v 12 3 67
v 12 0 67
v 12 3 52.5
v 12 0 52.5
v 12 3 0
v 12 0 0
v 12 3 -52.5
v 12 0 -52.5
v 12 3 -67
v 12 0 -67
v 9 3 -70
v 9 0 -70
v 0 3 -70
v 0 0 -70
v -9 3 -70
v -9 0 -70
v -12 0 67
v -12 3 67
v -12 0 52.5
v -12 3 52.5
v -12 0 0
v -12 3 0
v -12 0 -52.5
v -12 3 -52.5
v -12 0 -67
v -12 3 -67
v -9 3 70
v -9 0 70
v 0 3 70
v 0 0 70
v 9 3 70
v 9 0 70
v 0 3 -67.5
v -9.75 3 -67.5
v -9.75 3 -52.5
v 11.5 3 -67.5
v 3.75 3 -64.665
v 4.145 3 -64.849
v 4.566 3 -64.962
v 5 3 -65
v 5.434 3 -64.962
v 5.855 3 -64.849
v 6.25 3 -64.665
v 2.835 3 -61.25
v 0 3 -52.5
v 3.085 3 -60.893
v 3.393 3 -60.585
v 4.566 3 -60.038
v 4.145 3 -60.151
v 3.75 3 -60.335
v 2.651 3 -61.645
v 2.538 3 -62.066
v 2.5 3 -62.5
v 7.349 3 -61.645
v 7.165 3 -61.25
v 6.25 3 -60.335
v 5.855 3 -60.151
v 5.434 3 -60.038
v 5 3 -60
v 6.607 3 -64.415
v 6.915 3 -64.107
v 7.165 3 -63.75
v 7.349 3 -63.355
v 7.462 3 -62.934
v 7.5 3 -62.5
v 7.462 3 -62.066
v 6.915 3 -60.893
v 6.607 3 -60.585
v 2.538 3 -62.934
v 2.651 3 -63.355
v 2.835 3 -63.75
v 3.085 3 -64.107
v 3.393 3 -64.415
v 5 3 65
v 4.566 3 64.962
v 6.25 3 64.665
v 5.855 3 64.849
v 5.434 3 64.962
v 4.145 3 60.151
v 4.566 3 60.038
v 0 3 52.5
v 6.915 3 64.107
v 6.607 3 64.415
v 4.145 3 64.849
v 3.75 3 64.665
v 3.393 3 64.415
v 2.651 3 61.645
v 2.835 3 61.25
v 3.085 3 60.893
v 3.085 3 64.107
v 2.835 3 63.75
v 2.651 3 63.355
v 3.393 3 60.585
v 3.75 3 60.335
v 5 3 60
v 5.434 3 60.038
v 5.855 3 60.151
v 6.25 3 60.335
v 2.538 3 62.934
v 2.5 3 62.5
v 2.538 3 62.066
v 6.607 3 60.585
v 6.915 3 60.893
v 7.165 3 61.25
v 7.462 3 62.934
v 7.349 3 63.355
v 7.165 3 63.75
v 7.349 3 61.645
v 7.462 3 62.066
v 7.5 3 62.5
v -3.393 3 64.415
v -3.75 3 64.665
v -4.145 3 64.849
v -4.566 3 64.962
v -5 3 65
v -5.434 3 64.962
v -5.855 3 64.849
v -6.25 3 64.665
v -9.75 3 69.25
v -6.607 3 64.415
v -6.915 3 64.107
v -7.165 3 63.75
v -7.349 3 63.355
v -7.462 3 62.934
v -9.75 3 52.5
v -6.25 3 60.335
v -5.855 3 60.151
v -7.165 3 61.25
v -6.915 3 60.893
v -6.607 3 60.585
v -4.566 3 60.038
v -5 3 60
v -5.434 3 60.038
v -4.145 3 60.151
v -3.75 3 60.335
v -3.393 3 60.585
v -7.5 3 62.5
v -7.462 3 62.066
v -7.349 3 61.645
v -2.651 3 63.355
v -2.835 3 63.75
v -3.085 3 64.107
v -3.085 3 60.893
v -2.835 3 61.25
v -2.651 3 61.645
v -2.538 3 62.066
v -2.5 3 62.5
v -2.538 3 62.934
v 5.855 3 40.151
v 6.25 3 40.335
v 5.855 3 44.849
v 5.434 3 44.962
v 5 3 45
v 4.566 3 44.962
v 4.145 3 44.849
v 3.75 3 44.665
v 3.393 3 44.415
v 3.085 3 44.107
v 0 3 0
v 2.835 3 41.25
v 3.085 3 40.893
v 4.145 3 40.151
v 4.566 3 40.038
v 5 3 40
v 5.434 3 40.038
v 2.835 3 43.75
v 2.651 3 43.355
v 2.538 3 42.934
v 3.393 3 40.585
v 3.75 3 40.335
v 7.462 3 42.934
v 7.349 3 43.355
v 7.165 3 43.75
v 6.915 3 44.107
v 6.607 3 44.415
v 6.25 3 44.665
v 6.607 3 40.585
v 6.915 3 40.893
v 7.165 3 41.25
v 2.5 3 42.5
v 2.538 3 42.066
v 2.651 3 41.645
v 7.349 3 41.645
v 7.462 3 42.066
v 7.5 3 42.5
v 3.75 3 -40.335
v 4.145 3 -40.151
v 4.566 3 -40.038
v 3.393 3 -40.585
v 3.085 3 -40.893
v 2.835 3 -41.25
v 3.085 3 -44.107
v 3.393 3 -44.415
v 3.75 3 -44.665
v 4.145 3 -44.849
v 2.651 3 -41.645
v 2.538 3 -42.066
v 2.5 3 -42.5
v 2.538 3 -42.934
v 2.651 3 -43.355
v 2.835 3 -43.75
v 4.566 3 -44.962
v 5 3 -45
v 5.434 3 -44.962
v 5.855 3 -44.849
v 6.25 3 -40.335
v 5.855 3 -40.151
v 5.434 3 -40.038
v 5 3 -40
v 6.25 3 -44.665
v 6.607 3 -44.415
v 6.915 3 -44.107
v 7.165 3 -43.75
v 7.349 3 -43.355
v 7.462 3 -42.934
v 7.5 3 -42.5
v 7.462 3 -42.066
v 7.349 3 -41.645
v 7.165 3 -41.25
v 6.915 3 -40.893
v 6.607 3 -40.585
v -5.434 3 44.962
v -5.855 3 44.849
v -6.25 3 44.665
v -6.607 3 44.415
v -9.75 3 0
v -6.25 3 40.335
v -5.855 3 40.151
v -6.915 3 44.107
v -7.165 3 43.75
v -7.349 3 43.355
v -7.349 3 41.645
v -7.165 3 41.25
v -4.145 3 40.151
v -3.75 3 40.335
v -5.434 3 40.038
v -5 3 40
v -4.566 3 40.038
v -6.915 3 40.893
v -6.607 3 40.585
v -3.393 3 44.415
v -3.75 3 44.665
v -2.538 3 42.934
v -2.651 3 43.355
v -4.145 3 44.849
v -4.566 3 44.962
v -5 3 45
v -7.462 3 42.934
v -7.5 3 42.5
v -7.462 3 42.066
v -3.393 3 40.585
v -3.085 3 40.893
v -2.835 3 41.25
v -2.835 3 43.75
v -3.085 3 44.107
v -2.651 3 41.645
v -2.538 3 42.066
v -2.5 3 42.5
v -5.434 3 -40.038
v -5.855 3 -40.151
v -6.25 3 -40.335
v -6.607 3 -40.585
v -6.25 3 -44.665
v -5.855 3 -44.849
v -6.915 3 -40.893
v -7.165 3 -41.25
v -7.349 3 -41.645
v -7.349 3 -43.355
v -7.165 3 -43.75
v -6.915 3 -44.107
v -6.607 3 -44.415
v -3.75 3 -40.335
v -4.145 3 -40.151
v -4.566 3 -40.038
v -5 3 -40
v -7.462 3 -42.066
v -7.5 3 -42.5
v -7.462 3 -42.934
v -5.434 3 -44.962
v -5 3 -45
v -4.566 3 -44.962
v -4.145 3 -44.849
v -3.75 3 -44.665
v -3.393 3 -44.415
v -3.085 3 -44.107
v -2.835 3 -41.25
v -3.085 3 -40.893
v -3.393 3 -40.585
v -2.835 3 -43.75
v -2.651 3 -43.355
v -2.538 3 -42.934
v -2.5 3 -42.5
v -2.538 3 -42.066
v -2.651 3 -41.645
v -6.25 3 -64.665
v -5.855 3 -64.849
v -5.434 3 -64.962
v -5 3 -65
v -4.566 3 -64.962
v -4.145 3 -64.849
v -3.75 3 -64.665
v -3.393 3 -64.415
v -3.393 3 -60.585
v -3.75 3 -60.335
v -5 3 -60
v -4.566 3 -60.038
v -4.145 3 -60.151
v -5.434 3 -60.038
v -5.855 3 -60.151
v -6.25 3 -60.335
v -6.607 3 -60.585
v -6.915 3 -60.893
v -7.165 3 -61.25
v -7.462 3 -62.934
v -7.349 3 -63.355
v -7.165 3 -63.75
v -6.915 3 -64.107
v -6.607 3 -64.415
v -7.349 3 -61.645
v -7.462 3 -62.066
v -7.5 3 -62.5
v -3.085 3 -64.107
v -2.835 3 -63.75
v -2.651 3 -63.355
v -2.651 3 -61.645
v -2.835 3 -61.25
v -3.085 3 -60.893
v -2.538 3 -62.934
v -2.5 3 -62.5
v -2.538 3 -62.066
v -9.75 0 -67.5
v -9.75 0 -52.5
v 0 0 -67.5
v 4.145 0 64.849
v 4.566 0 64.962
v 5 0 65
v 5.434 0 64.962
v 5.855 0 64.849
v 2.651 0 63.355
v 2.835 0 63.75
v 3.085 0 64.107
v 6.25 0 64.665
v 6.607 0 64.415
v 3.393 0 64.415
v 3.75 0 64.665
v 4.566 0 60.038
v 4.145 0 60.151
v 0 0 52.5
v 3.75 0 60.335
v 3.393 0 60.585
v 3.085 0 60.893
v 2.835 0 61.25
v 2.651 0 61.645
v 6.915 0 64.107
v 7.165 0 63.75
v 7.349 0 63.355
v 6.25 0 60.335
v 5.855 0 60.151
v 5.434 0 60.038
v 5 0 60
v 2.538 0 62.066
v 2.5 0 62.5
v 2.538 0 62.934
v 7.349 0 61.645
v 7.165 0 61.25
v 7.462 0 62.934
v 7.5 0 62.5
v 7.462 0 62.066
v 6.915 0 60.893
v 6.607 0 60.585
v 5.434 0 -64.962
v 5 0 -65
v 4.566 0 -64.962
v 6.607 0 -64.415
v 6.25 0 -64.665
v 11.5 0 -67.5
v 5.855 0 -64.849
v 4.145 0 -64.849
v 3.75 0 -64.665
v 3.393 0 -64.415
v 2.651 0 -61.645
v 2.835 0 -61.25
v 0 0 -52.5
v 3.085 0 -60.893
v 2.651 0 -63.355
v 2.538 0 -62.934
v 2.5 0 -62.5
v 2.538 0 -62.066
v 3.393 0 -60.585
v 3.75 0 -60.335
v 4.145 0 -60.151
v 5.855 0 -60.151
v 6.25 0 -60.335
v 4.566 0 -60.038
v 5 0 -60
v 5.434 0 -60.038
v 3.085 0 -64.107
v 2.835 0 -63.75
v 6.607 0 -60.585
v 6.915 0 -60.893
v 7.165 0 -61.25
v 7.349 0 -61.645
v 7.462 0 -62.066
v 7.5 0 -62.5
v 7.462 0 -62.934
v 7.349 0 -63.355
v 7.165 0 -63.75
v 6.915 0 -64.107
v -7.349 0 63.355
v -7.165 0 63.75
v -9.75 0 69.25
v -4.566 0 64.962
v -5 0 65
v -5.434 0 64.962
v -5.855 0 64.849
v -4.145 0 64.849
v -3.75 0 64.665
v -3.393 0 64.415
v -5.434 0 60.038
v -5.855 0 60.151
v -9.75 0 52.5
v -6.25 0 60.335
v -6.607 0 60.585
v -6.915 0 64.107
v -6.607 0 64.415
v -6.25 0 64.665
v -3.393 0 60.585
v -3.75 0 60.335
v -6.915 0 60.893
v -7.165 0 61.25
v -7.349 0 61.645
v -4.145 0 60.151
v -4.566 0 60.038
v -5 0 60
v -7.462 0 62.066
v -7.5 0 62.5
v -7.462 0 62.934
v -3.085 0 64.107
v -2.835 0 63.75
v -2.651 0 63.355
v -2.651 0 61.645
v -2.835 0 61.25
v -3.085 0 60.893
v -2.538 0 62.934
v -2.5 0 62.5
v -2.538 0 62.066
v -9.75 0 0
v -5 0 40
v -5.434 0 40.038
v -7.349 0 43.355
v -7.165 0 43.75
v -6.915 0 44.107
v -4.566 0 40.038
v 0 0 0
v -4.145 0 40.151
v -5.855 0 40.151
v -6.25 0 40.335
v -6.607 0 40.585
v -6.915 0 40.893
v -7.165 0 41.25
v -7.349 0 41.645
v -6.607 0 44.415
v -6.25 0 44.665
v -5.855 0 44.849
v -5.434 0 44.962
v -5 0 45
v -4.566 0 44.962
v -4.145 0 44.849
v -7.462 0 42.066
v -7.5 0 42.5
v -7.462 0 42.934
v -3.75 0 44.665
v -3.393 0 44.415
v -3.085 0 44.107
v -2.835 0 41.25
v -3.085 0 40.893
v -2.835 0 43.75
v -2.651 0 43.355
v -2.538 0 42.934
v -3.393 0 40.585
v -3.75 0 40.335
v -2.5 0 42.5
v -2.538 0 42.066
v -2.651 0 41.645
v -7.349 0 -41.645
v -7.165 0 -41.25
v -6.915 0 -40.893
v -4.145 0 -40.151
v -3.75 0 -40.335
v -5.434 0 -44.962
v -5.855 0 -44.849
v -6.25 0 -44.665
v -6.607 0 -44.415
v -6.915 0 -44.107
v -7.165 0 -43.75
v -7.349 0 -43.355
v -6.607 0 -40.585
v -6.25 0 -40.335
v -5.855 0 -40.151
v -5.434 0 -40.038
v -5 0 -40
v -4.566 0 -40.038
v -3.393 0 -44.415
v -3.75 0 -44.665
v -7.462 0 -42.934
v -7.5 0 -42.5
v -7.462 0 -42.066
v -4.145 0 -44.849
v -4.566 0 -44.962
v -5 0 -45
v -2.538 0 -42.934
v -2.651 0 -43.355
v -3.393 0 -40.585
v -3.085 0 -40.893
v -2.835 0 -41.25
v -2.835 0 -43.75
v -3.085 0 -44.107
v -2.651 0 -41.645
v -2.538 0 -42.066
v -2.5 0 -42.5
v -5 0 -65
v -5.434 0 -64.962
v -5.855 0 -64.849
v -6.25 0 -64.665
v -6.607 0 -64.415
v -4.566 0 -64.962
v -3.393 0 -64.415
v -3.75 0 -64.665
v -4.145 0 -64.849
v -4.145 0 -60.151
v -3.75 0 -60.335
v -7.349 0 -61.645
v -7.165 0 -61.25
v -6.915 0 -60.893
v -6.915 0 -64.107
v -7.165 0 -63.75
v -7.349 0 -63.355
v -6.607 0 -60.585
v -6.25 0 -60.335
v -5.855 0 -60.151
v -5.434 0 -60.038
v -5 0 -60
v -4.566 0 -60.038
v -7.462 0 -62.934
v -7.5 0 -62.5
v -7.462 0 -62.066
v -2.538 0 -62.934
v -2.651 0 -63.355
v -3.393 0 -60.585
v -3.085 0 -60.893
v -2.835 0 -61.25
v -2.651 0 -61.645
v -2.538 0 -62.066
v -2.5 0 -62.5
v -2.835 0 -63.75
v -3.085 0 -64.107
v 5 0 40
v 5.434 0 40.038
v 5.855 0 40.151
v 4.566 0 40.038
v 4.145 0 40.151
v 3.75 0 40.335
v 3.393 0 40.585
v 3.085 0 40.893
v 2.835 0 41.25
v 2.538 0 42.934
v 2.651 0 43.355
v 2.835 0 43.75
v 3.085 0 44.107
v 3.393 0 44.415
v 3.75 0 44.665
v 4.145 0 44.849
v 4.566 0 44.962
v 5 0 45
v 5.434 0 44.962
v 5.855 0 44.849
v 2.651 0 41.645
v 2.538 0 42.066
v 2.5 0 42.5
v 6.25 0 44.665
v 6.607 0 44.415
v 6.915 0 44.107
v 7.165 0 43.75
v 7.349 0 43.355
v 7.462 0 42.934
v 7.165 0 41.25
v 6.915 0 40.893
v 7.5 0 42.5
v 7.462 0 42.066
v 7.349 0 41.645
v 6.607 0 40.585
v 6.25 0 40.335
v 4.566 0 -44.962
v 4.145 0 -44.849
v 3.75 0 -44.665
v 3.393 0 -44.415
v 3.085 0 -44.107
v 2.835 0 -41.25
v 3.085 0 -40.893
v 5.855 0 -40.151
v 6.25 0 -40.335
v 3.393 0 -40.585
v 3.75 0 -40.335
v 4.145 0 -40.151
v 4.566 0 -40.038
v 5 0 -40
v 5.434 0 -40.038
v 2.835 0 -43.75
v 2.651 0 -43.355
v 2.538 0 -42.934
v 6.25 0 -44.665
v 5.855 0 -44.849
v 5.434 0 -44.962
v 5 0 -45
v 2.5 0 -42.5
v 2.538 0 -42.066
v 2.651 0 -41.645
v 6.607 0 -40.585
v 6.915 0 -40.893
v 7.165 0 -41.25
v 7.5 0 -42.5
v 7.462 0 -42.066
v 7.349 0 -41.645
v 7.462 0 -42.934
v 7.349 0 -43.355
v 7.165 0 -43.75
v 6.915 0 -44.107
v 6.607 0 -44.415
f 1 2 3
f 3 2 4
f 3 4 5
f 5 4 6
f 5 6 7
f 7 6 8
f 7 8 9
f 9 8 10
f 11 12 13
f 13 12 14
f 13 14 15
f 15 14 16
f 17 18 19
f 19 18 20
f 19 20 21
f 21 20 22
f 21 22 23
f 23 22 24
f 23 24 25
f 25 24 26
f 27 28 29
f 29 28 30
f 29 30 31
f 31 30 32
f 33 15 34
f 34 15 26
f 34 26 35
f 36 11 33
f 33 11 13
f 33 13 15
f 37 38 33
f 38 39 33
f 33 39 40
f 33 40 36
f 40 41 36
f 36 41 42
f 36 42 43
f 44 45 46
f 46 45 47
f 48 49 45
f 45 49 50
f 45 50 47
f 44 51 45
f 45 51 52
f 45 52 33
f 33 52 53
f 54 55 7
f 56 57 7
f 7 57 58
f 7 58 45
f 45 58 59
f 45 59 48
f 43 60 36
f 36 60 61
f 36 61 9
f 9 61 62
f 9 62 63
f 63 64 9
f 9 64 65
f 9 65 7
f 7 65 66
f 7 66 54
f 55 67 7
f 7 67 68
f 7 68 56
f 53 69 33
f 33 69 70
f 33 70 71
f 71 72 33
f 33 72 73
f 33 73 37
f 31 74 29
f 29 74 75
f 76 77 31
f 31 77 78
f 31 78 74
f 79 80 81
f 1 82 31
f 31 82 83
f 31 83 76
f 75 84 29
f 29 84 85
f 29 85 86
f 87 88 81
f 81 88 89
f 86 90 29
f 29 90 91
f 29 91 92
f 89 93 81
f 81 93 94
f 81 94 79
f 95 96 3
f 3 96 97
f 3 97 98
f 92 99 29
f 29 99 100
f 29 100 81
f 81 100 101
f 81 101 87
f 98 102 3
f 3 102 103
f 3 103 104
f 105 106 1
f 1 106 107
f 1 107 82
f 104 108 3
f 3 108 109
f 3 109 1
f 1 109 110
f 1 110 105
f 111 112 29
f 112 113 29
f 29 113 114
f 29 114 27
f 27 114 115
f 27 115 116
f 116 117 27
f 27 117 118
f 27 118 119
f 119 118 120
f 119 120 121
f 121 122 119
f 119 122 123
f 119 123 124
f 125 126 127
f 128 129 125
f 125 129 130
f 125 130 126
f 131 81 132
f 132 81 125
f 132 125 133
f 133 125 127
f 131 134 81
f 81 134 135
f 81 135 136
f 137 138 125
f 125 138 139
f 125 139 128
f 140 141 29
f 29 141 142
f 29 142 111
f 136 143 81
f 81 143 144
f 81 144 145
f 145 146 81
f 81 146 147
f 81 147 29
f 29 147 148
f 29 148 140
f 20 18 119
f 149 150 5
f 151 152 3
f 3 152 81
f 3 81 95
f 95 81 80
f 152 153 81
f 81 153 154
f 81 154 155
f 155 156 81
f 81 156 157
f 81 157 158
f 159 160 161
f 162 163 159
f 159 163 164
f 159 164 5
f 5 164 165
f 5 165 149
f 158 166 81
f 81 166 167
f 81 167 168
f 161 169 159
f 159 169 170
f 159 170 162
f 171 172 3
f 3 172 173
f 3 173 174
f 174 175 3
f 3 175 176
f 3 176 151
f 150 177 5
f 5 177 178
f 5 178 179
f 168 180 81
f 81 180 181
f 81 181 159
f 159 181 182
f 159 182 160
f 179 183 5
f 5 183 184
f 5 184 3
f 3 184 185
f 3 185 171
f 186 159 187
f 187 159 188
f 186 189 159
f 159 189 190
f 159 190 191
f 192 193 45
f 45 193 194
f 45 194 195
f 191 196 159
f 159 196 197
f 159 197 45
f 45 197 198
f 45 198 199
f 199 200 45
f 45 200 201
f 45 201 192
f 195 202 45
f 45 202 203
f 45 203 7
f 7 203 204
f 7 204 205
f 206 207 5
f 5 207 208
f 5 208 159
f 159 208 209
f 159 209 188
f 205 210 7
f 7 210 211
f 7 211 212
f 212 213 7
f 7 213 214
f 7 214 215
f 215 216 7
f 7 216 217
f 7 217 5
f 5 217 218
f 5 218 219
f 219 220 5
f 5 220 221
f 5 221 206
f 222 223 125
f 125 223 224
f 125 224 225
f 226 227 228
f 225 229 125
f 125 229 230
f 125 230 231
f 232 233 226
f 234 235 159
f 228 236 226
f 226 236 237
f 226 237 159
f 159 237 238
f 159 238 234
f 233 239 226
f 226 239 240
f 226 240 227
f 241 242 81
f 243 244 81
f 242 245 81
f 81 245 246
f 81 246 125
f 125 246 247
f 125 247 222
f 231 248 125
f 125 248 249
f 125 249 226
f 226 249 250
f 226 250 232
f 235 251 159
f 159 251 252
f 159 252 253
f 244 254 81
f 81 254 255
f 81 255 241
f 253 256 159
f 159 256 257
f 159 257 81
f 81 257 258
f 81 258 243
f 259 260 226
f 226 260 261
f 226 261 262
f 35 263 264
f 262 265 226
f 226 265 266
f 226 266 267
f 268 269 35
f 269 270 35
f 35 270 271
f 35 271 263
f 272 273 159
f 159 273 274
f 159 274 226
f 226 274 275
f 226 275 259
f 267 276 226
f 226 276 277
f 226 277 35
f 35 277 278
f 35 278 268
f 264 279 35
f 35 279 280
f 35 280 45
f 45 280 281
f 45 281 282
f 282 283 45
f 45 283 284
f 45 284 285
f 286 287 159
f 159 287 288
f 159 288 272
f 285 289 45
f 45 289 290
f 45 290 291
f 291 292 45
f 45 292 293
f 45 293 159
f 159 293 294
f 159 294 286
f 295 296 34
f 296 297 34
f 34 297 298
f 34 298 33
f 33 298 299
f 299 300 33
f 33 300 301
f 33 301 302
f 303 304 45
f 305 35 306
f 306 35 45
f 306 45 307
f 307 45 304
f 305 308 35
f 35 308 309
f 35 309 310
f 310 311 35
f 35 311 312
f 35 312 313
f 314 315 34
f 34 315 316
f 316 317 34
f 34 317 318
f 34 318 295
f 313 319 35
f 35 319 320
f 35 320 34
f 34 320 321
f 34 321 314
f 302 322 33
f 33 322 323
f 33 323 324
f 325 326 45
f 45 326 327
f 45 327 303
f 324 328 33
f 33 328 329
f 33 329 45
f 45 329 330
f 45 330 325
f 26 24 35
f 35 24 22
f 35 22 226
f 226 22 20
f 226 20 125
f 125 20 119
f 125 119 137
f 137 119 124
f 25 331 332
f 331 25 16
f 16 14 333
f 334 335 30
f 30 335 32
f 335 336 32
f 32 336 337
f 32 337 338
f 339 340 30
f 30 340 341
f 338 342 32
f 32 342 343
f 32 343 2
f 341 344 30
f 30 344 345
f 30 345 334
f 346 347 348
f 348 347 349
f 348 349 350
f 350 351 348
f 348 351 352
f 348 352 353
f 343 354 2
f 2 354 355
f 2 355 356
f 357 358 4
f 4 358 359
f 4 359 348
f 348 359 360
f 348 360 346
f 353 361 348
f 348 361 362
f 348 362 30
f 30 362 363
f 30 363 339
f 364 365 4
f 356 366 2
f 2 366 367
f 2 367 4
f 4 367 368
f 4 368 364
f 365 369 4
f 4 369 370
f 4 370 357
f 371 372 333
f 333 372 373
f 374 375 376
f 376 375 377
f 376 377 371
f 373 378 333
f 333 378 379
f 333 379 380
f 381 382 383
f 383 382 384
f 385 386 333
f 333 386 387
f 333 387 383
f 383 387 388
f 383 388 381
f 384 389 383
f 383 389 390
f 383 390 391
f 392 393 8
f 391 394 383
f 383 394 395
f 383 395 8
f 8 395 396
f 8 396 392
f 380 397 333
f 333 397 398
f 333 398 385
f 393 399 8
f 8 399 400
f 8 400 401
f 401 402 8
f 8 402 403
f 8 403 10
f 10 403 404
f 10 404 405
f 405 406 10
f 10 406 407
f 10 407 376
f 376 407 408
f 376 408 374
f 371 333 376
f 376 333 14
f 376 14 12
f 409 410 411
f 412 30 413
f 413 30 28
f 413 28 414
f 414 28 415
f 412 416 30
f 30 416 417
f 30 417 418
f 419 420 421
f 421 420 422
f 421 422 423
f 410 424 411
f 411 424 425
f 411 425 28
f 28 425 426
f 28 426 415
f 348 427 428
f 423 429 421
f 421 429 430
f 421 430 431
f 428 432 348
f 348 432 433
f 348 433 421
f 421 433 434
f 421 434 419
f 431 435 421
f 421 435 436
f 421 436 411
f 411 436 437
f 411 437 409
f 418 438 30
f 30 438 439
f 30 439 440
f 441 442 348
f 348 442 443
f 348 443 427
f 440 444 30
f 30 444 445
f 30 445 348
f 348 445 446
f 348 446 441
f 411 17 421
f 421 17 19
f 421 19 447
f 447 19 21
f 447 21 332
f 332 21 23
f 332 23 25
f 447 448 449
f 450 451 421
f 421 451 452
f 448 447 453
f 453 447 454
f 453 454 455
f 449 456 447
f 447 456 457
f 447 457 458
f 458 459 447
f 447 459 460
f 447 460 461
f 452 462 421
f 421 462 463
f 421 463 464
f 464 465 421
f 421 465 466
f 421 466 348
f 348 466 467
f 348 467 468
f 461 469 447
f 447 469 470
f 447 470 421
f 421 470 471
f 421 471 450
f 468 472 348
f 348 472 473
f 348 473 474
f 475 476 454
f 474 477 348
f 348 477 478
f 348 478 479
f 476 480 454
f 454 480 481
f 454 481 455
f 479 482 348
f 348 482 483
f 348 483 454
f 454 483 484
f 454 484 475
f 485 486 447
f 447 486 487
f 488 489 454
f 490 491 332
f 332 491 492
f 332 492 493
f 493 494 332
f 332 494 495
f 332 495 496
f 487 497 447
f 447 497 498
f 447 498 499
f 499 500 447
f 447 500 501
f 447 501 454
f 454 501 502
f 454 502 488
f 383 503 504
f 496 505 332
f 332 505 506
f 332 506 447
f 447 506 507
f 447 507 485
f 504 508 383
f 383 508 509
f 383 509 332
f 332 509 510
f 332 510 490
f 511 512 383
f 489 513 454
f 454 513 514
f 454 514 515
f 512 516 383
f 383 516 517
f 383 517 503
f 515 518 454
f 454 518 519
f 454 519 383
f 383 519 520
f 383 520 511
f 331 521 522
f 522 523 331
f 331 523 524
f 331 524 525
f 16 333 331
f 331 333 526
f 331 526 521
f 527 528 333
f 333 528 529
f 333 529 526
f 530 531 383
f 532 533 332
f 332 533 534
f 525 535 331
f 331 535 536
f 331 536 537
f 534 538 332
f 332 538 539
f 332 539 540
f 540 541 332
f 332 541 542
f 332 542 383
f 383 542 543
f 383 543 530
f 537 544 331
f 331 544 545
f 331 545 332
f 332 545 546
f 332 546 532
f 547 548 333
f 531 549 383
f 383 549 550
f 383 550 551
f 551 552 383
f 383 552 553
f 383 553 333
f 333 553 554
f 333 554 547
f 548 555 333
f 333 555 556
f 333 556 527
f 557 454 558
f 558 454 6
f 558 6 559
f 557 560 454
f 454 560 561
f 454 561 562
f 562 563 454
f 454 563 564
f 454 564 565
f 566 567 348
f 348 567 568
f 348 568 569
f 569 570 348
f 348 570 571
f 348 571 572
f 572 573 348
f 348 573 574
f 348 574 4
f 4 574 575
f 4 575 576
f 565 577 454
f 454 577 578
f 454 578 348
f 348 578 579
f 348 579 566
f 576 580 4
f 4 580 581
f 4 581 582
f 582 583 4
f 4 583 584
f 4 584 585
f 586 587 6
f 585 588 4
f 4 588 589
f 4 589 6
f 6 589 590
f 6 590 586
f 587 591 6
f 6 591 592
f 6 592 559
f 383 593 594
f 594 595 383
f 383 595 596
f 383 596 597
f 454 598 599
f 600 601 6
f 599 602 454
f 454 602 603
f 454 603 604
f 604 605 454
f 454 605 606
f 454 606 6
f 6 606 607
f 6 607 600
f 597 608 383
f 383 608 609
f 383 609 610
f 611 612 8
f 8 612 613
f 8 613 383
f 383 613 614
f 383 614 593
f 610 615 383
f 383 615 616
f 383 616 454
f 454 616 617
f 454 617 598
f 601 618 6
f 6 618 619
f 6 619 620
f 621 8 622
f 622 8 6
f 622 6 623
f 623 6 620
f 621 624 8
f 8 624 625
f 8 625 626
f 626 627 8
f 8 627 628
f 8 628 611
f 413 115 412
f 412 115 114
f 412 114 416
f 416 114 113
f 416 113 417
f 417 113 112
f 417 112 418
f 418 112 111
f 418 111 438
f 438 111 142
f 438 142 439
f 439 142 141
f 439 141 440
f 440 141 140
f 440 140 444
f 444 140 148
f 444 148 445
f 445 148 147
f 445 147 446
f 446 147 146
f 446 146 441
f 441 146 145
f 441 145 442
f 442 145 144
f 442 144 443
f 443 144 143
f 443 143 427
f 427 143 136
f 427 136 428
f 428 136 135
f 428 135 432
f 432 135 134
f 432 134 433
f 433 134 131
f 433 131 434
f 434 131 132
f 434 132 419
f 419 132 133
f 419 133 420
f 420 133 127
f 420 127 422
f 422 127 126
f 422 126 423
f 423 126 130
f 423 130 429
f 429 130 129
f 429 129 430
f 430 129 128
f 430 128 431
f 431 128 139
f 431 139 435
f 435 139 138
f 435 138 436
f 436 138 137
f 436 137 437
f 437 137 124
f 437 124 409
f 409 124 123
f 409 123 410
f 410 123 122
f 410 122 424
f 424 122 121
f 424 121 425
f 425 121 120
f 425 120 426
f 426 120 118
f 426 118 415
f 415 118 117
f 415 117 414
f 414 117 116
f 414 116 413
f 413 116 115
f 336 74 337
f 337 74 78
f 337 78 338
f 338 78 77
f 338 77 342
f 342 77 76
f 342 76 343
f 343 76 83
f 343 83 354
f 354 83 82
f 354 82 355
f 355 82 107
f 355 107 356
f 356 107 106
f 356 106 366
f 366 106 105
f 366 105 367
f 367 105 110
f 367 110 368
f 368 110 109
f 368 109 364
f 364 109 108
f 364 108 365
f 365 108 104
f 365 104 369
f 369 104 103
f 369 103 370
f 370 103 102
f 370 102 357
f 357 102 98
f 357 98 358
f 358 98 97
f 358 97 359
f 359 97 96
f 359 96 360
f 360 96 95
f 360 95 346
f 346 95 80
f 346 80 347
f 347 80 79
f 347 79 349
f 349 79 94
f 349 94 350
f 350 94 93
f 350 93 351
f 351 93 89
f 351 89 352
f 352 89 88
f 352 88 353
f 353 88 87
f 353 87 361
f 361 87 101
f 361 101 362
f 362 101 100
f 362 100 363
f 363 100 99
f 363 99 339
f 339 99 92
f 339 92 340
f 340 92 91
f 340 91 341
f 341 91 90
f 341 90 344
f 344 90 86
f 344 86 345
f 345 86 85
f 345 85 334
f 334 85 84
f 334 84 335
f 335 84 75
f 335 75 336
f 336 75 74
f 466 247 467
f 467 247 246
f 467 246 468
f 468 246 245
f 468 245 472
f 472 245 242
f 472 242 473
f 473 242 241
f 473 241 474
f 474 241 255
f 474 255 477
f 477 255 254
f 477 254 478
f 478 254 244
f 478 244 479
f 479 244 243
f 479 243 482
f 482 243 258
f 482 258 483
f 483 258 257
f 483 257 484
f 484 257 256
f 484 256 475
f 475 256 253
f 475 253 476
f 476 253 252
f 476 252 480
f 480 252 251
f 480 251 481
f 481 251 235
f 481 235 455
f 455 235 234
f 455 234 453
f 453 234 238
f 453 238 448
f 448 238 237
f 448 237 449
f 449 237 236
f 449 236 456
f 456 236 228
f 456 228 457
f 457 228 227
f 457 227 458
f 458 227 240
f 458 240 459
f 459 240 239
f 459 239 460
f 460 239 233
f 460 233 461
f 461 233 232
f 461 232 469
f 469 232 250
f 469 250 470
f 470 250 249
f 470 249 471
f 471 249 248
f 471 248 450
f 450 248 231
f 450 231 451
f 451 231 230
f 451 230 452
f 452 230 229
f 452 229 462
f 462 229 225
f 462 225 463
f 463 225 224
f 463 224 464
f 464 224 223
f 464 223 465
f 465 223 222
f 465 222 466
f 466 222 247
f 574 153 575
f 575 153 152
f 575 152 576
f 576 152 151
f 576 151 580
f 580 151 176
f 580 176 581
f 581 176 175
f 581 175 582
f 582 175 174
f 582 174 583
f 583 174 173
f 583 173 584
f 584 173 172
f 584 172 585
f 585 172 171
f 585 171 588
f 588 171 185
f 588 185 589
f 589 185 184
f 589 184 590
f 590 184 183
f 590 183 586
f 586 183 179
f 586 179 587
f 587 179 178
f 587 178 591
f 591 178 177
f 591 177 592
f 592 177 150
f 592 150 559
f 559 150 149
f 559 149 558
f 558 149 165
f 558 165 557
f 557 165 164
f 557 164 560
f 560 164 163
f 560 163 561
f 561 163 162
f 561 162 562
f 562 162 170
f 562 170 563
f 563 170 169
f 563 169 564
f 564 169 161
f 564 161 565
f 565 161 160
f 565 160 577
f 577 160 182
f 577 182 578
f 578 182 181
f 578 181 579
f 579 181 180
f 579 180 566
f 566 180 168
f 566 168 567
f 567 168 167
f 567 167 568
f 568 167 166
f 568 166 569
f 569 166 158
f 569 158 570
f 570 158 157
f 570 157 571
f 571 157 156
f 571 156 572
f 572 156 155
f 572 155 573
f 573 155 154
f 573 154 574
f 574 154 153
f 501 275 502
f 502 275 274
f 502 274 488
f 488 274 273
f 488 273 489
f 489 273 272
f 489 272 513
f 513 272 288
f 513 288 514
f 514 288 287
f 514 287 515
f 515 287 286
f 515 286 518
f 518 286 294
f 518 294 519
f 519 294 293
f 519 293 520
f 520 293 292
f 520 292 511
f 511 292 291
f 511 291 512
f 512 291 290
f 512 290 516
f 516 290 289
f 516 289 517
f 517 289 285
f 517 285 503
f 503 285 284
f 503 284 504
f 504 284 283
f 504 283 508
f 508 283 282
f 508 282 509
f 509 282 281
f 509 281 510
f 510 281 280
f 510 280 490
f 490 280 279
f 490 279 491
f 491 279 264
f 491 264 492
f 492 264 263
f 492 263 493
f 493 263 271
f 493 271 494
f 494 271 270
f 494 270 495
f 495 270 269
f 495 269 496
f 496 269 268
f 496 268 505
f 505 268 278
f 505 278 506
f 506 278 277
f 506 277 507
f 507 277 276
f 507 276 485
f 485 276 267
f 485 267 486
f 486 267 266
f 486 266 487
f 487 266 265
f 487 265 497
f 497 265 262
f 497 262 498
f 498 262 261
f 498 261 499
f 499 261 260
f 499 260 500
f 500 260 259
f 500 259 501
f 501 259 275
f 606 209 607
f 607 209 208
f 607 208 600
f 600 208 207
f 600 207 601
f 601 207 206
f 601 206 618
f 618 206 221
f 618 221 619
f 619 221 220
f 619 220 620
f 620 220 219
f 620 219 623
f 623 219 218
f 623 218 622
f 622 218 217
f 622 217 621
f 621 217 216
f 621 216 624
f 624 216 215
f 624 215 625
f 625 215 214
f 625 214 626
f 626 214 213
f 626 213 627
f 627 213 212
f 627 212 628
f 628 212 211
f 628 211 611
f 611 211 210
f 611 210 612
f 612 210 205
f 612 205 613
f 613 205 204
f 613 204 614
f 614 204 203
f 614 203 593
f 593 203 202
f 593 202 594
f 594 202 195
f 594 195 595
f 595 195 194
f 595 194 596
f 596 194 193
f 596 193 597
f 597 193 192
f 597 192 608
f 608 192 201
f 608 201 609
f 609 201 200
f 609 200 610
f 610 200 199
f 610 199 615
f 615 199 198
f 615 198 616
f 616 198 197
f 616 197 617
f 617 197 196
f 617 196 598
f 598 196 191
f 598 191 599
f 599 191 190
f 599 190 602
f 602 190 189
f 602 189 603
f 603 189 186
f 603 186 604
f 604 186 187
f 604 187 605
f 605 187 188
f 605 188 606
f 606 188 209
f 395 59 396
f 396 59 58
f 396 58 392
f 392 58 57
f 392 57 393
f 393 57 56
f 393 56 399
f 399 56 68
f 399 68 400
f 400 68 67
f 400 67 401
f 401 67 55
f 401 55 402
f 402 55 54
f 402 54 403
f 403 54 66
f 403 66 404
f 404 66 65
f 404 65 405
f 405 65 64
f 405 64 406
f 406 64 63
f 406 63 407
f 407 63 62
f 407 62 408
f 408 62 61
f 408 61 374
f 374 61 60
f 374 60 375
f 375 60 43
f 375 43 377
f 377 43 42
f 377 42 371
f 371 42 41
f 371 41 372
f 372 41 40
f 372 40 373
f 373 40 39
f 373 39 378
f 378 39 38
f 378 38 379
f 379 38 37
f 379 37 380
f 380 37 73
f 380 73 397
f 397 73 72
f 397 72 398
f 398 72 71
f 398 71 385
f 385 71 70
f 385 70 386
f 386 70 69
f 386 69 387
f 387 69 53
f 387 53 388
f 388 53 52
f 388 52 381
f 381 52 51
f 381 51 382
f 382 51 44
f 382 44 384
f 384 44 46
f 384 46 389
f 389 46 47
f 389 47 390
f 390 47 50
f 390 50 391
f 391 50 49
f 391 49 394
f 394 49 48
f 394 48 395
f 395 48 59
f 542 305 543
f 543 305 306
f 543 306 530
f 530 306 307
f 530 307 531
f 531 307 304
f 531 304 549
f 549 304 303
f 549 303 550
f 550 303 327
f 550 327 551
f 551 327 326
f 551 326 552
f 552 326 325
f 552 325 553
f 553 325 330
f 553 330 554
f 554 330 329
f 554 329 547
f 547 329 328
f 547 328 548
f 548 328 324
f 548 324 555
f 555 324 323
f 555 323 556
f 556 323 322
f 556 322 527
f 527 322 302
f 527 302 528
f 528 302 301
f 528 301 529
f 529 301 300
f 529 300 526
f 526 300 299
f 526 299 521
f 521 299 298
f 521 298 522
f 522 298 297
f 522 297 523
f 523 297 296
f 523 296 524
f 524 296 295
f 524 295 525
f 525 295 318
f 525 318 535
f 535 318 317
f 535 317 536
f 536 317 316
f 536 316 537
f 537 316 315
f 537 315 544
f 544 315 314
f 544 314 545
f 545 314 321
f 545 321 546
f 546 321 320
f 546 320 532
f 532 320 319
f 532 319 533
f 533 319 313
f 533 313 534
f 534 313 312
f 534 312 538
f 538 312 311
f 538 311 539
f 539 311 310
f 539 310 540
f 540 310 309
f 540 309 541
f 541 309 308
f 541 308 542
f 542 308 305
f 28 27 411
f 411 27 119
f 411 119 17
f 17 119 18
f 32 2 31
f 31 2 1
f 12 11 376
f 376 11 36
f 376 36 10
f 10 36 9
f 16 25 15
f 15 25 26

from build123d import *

# Parameters (mm, degrees)
SKETCH_1_R      = 2.5
EXTRUDE_1_DEPTH = 3


with BuildPart() as part:
    # 草圖1 → 填料-伸長1 (new body)
    with BuildSketch(Plane(origin=(0, 3, 0), x_dir=(1, 0, 0), z_dir=(0, 1, 0))):
        Polygon((-12, 67), (-12, -67), (-9, -70), (9, -70), (12, -67), (12, 67), (9, 70), (-9, 70), align=None)
        with Locations((-5, 62.5)):
            Circle(SKETCH_1_R, mode=Mode.SUBTRACT)
        with Locations((5, 62.5)):
            Circle(SKETCH_1_R, mode=Mode.SUBTRACT)
        with Locations((5, 42.5)):
            Circle(SKETCH_1_R, mode=Mode.SUBTRACT)
        with Locations((-5, 42.5)):
            Circle(SKETCH_1_R, mode=Mode.SUBTRACT)
        with Locations((5, -42.5)):
            Circle(SKETCH_1_R, mode=Mode.SUBTRACT)
        with Locations((-5, -42.5)):
            Circle(SKETCH_1_R, mode=Mode.SUBTRACT)
        with Locations((5, -62.5)):
            Circle(SKETCH_1_R, mode=Mode.SUBTRACT)
        with Locations((-5, -62.5)):
            Circle(SKETCH_1_R, mode=Mode.SUBTRACT)
    extrude(amount=-EXTRUDE_1_DEPTH)


solid = part.part
